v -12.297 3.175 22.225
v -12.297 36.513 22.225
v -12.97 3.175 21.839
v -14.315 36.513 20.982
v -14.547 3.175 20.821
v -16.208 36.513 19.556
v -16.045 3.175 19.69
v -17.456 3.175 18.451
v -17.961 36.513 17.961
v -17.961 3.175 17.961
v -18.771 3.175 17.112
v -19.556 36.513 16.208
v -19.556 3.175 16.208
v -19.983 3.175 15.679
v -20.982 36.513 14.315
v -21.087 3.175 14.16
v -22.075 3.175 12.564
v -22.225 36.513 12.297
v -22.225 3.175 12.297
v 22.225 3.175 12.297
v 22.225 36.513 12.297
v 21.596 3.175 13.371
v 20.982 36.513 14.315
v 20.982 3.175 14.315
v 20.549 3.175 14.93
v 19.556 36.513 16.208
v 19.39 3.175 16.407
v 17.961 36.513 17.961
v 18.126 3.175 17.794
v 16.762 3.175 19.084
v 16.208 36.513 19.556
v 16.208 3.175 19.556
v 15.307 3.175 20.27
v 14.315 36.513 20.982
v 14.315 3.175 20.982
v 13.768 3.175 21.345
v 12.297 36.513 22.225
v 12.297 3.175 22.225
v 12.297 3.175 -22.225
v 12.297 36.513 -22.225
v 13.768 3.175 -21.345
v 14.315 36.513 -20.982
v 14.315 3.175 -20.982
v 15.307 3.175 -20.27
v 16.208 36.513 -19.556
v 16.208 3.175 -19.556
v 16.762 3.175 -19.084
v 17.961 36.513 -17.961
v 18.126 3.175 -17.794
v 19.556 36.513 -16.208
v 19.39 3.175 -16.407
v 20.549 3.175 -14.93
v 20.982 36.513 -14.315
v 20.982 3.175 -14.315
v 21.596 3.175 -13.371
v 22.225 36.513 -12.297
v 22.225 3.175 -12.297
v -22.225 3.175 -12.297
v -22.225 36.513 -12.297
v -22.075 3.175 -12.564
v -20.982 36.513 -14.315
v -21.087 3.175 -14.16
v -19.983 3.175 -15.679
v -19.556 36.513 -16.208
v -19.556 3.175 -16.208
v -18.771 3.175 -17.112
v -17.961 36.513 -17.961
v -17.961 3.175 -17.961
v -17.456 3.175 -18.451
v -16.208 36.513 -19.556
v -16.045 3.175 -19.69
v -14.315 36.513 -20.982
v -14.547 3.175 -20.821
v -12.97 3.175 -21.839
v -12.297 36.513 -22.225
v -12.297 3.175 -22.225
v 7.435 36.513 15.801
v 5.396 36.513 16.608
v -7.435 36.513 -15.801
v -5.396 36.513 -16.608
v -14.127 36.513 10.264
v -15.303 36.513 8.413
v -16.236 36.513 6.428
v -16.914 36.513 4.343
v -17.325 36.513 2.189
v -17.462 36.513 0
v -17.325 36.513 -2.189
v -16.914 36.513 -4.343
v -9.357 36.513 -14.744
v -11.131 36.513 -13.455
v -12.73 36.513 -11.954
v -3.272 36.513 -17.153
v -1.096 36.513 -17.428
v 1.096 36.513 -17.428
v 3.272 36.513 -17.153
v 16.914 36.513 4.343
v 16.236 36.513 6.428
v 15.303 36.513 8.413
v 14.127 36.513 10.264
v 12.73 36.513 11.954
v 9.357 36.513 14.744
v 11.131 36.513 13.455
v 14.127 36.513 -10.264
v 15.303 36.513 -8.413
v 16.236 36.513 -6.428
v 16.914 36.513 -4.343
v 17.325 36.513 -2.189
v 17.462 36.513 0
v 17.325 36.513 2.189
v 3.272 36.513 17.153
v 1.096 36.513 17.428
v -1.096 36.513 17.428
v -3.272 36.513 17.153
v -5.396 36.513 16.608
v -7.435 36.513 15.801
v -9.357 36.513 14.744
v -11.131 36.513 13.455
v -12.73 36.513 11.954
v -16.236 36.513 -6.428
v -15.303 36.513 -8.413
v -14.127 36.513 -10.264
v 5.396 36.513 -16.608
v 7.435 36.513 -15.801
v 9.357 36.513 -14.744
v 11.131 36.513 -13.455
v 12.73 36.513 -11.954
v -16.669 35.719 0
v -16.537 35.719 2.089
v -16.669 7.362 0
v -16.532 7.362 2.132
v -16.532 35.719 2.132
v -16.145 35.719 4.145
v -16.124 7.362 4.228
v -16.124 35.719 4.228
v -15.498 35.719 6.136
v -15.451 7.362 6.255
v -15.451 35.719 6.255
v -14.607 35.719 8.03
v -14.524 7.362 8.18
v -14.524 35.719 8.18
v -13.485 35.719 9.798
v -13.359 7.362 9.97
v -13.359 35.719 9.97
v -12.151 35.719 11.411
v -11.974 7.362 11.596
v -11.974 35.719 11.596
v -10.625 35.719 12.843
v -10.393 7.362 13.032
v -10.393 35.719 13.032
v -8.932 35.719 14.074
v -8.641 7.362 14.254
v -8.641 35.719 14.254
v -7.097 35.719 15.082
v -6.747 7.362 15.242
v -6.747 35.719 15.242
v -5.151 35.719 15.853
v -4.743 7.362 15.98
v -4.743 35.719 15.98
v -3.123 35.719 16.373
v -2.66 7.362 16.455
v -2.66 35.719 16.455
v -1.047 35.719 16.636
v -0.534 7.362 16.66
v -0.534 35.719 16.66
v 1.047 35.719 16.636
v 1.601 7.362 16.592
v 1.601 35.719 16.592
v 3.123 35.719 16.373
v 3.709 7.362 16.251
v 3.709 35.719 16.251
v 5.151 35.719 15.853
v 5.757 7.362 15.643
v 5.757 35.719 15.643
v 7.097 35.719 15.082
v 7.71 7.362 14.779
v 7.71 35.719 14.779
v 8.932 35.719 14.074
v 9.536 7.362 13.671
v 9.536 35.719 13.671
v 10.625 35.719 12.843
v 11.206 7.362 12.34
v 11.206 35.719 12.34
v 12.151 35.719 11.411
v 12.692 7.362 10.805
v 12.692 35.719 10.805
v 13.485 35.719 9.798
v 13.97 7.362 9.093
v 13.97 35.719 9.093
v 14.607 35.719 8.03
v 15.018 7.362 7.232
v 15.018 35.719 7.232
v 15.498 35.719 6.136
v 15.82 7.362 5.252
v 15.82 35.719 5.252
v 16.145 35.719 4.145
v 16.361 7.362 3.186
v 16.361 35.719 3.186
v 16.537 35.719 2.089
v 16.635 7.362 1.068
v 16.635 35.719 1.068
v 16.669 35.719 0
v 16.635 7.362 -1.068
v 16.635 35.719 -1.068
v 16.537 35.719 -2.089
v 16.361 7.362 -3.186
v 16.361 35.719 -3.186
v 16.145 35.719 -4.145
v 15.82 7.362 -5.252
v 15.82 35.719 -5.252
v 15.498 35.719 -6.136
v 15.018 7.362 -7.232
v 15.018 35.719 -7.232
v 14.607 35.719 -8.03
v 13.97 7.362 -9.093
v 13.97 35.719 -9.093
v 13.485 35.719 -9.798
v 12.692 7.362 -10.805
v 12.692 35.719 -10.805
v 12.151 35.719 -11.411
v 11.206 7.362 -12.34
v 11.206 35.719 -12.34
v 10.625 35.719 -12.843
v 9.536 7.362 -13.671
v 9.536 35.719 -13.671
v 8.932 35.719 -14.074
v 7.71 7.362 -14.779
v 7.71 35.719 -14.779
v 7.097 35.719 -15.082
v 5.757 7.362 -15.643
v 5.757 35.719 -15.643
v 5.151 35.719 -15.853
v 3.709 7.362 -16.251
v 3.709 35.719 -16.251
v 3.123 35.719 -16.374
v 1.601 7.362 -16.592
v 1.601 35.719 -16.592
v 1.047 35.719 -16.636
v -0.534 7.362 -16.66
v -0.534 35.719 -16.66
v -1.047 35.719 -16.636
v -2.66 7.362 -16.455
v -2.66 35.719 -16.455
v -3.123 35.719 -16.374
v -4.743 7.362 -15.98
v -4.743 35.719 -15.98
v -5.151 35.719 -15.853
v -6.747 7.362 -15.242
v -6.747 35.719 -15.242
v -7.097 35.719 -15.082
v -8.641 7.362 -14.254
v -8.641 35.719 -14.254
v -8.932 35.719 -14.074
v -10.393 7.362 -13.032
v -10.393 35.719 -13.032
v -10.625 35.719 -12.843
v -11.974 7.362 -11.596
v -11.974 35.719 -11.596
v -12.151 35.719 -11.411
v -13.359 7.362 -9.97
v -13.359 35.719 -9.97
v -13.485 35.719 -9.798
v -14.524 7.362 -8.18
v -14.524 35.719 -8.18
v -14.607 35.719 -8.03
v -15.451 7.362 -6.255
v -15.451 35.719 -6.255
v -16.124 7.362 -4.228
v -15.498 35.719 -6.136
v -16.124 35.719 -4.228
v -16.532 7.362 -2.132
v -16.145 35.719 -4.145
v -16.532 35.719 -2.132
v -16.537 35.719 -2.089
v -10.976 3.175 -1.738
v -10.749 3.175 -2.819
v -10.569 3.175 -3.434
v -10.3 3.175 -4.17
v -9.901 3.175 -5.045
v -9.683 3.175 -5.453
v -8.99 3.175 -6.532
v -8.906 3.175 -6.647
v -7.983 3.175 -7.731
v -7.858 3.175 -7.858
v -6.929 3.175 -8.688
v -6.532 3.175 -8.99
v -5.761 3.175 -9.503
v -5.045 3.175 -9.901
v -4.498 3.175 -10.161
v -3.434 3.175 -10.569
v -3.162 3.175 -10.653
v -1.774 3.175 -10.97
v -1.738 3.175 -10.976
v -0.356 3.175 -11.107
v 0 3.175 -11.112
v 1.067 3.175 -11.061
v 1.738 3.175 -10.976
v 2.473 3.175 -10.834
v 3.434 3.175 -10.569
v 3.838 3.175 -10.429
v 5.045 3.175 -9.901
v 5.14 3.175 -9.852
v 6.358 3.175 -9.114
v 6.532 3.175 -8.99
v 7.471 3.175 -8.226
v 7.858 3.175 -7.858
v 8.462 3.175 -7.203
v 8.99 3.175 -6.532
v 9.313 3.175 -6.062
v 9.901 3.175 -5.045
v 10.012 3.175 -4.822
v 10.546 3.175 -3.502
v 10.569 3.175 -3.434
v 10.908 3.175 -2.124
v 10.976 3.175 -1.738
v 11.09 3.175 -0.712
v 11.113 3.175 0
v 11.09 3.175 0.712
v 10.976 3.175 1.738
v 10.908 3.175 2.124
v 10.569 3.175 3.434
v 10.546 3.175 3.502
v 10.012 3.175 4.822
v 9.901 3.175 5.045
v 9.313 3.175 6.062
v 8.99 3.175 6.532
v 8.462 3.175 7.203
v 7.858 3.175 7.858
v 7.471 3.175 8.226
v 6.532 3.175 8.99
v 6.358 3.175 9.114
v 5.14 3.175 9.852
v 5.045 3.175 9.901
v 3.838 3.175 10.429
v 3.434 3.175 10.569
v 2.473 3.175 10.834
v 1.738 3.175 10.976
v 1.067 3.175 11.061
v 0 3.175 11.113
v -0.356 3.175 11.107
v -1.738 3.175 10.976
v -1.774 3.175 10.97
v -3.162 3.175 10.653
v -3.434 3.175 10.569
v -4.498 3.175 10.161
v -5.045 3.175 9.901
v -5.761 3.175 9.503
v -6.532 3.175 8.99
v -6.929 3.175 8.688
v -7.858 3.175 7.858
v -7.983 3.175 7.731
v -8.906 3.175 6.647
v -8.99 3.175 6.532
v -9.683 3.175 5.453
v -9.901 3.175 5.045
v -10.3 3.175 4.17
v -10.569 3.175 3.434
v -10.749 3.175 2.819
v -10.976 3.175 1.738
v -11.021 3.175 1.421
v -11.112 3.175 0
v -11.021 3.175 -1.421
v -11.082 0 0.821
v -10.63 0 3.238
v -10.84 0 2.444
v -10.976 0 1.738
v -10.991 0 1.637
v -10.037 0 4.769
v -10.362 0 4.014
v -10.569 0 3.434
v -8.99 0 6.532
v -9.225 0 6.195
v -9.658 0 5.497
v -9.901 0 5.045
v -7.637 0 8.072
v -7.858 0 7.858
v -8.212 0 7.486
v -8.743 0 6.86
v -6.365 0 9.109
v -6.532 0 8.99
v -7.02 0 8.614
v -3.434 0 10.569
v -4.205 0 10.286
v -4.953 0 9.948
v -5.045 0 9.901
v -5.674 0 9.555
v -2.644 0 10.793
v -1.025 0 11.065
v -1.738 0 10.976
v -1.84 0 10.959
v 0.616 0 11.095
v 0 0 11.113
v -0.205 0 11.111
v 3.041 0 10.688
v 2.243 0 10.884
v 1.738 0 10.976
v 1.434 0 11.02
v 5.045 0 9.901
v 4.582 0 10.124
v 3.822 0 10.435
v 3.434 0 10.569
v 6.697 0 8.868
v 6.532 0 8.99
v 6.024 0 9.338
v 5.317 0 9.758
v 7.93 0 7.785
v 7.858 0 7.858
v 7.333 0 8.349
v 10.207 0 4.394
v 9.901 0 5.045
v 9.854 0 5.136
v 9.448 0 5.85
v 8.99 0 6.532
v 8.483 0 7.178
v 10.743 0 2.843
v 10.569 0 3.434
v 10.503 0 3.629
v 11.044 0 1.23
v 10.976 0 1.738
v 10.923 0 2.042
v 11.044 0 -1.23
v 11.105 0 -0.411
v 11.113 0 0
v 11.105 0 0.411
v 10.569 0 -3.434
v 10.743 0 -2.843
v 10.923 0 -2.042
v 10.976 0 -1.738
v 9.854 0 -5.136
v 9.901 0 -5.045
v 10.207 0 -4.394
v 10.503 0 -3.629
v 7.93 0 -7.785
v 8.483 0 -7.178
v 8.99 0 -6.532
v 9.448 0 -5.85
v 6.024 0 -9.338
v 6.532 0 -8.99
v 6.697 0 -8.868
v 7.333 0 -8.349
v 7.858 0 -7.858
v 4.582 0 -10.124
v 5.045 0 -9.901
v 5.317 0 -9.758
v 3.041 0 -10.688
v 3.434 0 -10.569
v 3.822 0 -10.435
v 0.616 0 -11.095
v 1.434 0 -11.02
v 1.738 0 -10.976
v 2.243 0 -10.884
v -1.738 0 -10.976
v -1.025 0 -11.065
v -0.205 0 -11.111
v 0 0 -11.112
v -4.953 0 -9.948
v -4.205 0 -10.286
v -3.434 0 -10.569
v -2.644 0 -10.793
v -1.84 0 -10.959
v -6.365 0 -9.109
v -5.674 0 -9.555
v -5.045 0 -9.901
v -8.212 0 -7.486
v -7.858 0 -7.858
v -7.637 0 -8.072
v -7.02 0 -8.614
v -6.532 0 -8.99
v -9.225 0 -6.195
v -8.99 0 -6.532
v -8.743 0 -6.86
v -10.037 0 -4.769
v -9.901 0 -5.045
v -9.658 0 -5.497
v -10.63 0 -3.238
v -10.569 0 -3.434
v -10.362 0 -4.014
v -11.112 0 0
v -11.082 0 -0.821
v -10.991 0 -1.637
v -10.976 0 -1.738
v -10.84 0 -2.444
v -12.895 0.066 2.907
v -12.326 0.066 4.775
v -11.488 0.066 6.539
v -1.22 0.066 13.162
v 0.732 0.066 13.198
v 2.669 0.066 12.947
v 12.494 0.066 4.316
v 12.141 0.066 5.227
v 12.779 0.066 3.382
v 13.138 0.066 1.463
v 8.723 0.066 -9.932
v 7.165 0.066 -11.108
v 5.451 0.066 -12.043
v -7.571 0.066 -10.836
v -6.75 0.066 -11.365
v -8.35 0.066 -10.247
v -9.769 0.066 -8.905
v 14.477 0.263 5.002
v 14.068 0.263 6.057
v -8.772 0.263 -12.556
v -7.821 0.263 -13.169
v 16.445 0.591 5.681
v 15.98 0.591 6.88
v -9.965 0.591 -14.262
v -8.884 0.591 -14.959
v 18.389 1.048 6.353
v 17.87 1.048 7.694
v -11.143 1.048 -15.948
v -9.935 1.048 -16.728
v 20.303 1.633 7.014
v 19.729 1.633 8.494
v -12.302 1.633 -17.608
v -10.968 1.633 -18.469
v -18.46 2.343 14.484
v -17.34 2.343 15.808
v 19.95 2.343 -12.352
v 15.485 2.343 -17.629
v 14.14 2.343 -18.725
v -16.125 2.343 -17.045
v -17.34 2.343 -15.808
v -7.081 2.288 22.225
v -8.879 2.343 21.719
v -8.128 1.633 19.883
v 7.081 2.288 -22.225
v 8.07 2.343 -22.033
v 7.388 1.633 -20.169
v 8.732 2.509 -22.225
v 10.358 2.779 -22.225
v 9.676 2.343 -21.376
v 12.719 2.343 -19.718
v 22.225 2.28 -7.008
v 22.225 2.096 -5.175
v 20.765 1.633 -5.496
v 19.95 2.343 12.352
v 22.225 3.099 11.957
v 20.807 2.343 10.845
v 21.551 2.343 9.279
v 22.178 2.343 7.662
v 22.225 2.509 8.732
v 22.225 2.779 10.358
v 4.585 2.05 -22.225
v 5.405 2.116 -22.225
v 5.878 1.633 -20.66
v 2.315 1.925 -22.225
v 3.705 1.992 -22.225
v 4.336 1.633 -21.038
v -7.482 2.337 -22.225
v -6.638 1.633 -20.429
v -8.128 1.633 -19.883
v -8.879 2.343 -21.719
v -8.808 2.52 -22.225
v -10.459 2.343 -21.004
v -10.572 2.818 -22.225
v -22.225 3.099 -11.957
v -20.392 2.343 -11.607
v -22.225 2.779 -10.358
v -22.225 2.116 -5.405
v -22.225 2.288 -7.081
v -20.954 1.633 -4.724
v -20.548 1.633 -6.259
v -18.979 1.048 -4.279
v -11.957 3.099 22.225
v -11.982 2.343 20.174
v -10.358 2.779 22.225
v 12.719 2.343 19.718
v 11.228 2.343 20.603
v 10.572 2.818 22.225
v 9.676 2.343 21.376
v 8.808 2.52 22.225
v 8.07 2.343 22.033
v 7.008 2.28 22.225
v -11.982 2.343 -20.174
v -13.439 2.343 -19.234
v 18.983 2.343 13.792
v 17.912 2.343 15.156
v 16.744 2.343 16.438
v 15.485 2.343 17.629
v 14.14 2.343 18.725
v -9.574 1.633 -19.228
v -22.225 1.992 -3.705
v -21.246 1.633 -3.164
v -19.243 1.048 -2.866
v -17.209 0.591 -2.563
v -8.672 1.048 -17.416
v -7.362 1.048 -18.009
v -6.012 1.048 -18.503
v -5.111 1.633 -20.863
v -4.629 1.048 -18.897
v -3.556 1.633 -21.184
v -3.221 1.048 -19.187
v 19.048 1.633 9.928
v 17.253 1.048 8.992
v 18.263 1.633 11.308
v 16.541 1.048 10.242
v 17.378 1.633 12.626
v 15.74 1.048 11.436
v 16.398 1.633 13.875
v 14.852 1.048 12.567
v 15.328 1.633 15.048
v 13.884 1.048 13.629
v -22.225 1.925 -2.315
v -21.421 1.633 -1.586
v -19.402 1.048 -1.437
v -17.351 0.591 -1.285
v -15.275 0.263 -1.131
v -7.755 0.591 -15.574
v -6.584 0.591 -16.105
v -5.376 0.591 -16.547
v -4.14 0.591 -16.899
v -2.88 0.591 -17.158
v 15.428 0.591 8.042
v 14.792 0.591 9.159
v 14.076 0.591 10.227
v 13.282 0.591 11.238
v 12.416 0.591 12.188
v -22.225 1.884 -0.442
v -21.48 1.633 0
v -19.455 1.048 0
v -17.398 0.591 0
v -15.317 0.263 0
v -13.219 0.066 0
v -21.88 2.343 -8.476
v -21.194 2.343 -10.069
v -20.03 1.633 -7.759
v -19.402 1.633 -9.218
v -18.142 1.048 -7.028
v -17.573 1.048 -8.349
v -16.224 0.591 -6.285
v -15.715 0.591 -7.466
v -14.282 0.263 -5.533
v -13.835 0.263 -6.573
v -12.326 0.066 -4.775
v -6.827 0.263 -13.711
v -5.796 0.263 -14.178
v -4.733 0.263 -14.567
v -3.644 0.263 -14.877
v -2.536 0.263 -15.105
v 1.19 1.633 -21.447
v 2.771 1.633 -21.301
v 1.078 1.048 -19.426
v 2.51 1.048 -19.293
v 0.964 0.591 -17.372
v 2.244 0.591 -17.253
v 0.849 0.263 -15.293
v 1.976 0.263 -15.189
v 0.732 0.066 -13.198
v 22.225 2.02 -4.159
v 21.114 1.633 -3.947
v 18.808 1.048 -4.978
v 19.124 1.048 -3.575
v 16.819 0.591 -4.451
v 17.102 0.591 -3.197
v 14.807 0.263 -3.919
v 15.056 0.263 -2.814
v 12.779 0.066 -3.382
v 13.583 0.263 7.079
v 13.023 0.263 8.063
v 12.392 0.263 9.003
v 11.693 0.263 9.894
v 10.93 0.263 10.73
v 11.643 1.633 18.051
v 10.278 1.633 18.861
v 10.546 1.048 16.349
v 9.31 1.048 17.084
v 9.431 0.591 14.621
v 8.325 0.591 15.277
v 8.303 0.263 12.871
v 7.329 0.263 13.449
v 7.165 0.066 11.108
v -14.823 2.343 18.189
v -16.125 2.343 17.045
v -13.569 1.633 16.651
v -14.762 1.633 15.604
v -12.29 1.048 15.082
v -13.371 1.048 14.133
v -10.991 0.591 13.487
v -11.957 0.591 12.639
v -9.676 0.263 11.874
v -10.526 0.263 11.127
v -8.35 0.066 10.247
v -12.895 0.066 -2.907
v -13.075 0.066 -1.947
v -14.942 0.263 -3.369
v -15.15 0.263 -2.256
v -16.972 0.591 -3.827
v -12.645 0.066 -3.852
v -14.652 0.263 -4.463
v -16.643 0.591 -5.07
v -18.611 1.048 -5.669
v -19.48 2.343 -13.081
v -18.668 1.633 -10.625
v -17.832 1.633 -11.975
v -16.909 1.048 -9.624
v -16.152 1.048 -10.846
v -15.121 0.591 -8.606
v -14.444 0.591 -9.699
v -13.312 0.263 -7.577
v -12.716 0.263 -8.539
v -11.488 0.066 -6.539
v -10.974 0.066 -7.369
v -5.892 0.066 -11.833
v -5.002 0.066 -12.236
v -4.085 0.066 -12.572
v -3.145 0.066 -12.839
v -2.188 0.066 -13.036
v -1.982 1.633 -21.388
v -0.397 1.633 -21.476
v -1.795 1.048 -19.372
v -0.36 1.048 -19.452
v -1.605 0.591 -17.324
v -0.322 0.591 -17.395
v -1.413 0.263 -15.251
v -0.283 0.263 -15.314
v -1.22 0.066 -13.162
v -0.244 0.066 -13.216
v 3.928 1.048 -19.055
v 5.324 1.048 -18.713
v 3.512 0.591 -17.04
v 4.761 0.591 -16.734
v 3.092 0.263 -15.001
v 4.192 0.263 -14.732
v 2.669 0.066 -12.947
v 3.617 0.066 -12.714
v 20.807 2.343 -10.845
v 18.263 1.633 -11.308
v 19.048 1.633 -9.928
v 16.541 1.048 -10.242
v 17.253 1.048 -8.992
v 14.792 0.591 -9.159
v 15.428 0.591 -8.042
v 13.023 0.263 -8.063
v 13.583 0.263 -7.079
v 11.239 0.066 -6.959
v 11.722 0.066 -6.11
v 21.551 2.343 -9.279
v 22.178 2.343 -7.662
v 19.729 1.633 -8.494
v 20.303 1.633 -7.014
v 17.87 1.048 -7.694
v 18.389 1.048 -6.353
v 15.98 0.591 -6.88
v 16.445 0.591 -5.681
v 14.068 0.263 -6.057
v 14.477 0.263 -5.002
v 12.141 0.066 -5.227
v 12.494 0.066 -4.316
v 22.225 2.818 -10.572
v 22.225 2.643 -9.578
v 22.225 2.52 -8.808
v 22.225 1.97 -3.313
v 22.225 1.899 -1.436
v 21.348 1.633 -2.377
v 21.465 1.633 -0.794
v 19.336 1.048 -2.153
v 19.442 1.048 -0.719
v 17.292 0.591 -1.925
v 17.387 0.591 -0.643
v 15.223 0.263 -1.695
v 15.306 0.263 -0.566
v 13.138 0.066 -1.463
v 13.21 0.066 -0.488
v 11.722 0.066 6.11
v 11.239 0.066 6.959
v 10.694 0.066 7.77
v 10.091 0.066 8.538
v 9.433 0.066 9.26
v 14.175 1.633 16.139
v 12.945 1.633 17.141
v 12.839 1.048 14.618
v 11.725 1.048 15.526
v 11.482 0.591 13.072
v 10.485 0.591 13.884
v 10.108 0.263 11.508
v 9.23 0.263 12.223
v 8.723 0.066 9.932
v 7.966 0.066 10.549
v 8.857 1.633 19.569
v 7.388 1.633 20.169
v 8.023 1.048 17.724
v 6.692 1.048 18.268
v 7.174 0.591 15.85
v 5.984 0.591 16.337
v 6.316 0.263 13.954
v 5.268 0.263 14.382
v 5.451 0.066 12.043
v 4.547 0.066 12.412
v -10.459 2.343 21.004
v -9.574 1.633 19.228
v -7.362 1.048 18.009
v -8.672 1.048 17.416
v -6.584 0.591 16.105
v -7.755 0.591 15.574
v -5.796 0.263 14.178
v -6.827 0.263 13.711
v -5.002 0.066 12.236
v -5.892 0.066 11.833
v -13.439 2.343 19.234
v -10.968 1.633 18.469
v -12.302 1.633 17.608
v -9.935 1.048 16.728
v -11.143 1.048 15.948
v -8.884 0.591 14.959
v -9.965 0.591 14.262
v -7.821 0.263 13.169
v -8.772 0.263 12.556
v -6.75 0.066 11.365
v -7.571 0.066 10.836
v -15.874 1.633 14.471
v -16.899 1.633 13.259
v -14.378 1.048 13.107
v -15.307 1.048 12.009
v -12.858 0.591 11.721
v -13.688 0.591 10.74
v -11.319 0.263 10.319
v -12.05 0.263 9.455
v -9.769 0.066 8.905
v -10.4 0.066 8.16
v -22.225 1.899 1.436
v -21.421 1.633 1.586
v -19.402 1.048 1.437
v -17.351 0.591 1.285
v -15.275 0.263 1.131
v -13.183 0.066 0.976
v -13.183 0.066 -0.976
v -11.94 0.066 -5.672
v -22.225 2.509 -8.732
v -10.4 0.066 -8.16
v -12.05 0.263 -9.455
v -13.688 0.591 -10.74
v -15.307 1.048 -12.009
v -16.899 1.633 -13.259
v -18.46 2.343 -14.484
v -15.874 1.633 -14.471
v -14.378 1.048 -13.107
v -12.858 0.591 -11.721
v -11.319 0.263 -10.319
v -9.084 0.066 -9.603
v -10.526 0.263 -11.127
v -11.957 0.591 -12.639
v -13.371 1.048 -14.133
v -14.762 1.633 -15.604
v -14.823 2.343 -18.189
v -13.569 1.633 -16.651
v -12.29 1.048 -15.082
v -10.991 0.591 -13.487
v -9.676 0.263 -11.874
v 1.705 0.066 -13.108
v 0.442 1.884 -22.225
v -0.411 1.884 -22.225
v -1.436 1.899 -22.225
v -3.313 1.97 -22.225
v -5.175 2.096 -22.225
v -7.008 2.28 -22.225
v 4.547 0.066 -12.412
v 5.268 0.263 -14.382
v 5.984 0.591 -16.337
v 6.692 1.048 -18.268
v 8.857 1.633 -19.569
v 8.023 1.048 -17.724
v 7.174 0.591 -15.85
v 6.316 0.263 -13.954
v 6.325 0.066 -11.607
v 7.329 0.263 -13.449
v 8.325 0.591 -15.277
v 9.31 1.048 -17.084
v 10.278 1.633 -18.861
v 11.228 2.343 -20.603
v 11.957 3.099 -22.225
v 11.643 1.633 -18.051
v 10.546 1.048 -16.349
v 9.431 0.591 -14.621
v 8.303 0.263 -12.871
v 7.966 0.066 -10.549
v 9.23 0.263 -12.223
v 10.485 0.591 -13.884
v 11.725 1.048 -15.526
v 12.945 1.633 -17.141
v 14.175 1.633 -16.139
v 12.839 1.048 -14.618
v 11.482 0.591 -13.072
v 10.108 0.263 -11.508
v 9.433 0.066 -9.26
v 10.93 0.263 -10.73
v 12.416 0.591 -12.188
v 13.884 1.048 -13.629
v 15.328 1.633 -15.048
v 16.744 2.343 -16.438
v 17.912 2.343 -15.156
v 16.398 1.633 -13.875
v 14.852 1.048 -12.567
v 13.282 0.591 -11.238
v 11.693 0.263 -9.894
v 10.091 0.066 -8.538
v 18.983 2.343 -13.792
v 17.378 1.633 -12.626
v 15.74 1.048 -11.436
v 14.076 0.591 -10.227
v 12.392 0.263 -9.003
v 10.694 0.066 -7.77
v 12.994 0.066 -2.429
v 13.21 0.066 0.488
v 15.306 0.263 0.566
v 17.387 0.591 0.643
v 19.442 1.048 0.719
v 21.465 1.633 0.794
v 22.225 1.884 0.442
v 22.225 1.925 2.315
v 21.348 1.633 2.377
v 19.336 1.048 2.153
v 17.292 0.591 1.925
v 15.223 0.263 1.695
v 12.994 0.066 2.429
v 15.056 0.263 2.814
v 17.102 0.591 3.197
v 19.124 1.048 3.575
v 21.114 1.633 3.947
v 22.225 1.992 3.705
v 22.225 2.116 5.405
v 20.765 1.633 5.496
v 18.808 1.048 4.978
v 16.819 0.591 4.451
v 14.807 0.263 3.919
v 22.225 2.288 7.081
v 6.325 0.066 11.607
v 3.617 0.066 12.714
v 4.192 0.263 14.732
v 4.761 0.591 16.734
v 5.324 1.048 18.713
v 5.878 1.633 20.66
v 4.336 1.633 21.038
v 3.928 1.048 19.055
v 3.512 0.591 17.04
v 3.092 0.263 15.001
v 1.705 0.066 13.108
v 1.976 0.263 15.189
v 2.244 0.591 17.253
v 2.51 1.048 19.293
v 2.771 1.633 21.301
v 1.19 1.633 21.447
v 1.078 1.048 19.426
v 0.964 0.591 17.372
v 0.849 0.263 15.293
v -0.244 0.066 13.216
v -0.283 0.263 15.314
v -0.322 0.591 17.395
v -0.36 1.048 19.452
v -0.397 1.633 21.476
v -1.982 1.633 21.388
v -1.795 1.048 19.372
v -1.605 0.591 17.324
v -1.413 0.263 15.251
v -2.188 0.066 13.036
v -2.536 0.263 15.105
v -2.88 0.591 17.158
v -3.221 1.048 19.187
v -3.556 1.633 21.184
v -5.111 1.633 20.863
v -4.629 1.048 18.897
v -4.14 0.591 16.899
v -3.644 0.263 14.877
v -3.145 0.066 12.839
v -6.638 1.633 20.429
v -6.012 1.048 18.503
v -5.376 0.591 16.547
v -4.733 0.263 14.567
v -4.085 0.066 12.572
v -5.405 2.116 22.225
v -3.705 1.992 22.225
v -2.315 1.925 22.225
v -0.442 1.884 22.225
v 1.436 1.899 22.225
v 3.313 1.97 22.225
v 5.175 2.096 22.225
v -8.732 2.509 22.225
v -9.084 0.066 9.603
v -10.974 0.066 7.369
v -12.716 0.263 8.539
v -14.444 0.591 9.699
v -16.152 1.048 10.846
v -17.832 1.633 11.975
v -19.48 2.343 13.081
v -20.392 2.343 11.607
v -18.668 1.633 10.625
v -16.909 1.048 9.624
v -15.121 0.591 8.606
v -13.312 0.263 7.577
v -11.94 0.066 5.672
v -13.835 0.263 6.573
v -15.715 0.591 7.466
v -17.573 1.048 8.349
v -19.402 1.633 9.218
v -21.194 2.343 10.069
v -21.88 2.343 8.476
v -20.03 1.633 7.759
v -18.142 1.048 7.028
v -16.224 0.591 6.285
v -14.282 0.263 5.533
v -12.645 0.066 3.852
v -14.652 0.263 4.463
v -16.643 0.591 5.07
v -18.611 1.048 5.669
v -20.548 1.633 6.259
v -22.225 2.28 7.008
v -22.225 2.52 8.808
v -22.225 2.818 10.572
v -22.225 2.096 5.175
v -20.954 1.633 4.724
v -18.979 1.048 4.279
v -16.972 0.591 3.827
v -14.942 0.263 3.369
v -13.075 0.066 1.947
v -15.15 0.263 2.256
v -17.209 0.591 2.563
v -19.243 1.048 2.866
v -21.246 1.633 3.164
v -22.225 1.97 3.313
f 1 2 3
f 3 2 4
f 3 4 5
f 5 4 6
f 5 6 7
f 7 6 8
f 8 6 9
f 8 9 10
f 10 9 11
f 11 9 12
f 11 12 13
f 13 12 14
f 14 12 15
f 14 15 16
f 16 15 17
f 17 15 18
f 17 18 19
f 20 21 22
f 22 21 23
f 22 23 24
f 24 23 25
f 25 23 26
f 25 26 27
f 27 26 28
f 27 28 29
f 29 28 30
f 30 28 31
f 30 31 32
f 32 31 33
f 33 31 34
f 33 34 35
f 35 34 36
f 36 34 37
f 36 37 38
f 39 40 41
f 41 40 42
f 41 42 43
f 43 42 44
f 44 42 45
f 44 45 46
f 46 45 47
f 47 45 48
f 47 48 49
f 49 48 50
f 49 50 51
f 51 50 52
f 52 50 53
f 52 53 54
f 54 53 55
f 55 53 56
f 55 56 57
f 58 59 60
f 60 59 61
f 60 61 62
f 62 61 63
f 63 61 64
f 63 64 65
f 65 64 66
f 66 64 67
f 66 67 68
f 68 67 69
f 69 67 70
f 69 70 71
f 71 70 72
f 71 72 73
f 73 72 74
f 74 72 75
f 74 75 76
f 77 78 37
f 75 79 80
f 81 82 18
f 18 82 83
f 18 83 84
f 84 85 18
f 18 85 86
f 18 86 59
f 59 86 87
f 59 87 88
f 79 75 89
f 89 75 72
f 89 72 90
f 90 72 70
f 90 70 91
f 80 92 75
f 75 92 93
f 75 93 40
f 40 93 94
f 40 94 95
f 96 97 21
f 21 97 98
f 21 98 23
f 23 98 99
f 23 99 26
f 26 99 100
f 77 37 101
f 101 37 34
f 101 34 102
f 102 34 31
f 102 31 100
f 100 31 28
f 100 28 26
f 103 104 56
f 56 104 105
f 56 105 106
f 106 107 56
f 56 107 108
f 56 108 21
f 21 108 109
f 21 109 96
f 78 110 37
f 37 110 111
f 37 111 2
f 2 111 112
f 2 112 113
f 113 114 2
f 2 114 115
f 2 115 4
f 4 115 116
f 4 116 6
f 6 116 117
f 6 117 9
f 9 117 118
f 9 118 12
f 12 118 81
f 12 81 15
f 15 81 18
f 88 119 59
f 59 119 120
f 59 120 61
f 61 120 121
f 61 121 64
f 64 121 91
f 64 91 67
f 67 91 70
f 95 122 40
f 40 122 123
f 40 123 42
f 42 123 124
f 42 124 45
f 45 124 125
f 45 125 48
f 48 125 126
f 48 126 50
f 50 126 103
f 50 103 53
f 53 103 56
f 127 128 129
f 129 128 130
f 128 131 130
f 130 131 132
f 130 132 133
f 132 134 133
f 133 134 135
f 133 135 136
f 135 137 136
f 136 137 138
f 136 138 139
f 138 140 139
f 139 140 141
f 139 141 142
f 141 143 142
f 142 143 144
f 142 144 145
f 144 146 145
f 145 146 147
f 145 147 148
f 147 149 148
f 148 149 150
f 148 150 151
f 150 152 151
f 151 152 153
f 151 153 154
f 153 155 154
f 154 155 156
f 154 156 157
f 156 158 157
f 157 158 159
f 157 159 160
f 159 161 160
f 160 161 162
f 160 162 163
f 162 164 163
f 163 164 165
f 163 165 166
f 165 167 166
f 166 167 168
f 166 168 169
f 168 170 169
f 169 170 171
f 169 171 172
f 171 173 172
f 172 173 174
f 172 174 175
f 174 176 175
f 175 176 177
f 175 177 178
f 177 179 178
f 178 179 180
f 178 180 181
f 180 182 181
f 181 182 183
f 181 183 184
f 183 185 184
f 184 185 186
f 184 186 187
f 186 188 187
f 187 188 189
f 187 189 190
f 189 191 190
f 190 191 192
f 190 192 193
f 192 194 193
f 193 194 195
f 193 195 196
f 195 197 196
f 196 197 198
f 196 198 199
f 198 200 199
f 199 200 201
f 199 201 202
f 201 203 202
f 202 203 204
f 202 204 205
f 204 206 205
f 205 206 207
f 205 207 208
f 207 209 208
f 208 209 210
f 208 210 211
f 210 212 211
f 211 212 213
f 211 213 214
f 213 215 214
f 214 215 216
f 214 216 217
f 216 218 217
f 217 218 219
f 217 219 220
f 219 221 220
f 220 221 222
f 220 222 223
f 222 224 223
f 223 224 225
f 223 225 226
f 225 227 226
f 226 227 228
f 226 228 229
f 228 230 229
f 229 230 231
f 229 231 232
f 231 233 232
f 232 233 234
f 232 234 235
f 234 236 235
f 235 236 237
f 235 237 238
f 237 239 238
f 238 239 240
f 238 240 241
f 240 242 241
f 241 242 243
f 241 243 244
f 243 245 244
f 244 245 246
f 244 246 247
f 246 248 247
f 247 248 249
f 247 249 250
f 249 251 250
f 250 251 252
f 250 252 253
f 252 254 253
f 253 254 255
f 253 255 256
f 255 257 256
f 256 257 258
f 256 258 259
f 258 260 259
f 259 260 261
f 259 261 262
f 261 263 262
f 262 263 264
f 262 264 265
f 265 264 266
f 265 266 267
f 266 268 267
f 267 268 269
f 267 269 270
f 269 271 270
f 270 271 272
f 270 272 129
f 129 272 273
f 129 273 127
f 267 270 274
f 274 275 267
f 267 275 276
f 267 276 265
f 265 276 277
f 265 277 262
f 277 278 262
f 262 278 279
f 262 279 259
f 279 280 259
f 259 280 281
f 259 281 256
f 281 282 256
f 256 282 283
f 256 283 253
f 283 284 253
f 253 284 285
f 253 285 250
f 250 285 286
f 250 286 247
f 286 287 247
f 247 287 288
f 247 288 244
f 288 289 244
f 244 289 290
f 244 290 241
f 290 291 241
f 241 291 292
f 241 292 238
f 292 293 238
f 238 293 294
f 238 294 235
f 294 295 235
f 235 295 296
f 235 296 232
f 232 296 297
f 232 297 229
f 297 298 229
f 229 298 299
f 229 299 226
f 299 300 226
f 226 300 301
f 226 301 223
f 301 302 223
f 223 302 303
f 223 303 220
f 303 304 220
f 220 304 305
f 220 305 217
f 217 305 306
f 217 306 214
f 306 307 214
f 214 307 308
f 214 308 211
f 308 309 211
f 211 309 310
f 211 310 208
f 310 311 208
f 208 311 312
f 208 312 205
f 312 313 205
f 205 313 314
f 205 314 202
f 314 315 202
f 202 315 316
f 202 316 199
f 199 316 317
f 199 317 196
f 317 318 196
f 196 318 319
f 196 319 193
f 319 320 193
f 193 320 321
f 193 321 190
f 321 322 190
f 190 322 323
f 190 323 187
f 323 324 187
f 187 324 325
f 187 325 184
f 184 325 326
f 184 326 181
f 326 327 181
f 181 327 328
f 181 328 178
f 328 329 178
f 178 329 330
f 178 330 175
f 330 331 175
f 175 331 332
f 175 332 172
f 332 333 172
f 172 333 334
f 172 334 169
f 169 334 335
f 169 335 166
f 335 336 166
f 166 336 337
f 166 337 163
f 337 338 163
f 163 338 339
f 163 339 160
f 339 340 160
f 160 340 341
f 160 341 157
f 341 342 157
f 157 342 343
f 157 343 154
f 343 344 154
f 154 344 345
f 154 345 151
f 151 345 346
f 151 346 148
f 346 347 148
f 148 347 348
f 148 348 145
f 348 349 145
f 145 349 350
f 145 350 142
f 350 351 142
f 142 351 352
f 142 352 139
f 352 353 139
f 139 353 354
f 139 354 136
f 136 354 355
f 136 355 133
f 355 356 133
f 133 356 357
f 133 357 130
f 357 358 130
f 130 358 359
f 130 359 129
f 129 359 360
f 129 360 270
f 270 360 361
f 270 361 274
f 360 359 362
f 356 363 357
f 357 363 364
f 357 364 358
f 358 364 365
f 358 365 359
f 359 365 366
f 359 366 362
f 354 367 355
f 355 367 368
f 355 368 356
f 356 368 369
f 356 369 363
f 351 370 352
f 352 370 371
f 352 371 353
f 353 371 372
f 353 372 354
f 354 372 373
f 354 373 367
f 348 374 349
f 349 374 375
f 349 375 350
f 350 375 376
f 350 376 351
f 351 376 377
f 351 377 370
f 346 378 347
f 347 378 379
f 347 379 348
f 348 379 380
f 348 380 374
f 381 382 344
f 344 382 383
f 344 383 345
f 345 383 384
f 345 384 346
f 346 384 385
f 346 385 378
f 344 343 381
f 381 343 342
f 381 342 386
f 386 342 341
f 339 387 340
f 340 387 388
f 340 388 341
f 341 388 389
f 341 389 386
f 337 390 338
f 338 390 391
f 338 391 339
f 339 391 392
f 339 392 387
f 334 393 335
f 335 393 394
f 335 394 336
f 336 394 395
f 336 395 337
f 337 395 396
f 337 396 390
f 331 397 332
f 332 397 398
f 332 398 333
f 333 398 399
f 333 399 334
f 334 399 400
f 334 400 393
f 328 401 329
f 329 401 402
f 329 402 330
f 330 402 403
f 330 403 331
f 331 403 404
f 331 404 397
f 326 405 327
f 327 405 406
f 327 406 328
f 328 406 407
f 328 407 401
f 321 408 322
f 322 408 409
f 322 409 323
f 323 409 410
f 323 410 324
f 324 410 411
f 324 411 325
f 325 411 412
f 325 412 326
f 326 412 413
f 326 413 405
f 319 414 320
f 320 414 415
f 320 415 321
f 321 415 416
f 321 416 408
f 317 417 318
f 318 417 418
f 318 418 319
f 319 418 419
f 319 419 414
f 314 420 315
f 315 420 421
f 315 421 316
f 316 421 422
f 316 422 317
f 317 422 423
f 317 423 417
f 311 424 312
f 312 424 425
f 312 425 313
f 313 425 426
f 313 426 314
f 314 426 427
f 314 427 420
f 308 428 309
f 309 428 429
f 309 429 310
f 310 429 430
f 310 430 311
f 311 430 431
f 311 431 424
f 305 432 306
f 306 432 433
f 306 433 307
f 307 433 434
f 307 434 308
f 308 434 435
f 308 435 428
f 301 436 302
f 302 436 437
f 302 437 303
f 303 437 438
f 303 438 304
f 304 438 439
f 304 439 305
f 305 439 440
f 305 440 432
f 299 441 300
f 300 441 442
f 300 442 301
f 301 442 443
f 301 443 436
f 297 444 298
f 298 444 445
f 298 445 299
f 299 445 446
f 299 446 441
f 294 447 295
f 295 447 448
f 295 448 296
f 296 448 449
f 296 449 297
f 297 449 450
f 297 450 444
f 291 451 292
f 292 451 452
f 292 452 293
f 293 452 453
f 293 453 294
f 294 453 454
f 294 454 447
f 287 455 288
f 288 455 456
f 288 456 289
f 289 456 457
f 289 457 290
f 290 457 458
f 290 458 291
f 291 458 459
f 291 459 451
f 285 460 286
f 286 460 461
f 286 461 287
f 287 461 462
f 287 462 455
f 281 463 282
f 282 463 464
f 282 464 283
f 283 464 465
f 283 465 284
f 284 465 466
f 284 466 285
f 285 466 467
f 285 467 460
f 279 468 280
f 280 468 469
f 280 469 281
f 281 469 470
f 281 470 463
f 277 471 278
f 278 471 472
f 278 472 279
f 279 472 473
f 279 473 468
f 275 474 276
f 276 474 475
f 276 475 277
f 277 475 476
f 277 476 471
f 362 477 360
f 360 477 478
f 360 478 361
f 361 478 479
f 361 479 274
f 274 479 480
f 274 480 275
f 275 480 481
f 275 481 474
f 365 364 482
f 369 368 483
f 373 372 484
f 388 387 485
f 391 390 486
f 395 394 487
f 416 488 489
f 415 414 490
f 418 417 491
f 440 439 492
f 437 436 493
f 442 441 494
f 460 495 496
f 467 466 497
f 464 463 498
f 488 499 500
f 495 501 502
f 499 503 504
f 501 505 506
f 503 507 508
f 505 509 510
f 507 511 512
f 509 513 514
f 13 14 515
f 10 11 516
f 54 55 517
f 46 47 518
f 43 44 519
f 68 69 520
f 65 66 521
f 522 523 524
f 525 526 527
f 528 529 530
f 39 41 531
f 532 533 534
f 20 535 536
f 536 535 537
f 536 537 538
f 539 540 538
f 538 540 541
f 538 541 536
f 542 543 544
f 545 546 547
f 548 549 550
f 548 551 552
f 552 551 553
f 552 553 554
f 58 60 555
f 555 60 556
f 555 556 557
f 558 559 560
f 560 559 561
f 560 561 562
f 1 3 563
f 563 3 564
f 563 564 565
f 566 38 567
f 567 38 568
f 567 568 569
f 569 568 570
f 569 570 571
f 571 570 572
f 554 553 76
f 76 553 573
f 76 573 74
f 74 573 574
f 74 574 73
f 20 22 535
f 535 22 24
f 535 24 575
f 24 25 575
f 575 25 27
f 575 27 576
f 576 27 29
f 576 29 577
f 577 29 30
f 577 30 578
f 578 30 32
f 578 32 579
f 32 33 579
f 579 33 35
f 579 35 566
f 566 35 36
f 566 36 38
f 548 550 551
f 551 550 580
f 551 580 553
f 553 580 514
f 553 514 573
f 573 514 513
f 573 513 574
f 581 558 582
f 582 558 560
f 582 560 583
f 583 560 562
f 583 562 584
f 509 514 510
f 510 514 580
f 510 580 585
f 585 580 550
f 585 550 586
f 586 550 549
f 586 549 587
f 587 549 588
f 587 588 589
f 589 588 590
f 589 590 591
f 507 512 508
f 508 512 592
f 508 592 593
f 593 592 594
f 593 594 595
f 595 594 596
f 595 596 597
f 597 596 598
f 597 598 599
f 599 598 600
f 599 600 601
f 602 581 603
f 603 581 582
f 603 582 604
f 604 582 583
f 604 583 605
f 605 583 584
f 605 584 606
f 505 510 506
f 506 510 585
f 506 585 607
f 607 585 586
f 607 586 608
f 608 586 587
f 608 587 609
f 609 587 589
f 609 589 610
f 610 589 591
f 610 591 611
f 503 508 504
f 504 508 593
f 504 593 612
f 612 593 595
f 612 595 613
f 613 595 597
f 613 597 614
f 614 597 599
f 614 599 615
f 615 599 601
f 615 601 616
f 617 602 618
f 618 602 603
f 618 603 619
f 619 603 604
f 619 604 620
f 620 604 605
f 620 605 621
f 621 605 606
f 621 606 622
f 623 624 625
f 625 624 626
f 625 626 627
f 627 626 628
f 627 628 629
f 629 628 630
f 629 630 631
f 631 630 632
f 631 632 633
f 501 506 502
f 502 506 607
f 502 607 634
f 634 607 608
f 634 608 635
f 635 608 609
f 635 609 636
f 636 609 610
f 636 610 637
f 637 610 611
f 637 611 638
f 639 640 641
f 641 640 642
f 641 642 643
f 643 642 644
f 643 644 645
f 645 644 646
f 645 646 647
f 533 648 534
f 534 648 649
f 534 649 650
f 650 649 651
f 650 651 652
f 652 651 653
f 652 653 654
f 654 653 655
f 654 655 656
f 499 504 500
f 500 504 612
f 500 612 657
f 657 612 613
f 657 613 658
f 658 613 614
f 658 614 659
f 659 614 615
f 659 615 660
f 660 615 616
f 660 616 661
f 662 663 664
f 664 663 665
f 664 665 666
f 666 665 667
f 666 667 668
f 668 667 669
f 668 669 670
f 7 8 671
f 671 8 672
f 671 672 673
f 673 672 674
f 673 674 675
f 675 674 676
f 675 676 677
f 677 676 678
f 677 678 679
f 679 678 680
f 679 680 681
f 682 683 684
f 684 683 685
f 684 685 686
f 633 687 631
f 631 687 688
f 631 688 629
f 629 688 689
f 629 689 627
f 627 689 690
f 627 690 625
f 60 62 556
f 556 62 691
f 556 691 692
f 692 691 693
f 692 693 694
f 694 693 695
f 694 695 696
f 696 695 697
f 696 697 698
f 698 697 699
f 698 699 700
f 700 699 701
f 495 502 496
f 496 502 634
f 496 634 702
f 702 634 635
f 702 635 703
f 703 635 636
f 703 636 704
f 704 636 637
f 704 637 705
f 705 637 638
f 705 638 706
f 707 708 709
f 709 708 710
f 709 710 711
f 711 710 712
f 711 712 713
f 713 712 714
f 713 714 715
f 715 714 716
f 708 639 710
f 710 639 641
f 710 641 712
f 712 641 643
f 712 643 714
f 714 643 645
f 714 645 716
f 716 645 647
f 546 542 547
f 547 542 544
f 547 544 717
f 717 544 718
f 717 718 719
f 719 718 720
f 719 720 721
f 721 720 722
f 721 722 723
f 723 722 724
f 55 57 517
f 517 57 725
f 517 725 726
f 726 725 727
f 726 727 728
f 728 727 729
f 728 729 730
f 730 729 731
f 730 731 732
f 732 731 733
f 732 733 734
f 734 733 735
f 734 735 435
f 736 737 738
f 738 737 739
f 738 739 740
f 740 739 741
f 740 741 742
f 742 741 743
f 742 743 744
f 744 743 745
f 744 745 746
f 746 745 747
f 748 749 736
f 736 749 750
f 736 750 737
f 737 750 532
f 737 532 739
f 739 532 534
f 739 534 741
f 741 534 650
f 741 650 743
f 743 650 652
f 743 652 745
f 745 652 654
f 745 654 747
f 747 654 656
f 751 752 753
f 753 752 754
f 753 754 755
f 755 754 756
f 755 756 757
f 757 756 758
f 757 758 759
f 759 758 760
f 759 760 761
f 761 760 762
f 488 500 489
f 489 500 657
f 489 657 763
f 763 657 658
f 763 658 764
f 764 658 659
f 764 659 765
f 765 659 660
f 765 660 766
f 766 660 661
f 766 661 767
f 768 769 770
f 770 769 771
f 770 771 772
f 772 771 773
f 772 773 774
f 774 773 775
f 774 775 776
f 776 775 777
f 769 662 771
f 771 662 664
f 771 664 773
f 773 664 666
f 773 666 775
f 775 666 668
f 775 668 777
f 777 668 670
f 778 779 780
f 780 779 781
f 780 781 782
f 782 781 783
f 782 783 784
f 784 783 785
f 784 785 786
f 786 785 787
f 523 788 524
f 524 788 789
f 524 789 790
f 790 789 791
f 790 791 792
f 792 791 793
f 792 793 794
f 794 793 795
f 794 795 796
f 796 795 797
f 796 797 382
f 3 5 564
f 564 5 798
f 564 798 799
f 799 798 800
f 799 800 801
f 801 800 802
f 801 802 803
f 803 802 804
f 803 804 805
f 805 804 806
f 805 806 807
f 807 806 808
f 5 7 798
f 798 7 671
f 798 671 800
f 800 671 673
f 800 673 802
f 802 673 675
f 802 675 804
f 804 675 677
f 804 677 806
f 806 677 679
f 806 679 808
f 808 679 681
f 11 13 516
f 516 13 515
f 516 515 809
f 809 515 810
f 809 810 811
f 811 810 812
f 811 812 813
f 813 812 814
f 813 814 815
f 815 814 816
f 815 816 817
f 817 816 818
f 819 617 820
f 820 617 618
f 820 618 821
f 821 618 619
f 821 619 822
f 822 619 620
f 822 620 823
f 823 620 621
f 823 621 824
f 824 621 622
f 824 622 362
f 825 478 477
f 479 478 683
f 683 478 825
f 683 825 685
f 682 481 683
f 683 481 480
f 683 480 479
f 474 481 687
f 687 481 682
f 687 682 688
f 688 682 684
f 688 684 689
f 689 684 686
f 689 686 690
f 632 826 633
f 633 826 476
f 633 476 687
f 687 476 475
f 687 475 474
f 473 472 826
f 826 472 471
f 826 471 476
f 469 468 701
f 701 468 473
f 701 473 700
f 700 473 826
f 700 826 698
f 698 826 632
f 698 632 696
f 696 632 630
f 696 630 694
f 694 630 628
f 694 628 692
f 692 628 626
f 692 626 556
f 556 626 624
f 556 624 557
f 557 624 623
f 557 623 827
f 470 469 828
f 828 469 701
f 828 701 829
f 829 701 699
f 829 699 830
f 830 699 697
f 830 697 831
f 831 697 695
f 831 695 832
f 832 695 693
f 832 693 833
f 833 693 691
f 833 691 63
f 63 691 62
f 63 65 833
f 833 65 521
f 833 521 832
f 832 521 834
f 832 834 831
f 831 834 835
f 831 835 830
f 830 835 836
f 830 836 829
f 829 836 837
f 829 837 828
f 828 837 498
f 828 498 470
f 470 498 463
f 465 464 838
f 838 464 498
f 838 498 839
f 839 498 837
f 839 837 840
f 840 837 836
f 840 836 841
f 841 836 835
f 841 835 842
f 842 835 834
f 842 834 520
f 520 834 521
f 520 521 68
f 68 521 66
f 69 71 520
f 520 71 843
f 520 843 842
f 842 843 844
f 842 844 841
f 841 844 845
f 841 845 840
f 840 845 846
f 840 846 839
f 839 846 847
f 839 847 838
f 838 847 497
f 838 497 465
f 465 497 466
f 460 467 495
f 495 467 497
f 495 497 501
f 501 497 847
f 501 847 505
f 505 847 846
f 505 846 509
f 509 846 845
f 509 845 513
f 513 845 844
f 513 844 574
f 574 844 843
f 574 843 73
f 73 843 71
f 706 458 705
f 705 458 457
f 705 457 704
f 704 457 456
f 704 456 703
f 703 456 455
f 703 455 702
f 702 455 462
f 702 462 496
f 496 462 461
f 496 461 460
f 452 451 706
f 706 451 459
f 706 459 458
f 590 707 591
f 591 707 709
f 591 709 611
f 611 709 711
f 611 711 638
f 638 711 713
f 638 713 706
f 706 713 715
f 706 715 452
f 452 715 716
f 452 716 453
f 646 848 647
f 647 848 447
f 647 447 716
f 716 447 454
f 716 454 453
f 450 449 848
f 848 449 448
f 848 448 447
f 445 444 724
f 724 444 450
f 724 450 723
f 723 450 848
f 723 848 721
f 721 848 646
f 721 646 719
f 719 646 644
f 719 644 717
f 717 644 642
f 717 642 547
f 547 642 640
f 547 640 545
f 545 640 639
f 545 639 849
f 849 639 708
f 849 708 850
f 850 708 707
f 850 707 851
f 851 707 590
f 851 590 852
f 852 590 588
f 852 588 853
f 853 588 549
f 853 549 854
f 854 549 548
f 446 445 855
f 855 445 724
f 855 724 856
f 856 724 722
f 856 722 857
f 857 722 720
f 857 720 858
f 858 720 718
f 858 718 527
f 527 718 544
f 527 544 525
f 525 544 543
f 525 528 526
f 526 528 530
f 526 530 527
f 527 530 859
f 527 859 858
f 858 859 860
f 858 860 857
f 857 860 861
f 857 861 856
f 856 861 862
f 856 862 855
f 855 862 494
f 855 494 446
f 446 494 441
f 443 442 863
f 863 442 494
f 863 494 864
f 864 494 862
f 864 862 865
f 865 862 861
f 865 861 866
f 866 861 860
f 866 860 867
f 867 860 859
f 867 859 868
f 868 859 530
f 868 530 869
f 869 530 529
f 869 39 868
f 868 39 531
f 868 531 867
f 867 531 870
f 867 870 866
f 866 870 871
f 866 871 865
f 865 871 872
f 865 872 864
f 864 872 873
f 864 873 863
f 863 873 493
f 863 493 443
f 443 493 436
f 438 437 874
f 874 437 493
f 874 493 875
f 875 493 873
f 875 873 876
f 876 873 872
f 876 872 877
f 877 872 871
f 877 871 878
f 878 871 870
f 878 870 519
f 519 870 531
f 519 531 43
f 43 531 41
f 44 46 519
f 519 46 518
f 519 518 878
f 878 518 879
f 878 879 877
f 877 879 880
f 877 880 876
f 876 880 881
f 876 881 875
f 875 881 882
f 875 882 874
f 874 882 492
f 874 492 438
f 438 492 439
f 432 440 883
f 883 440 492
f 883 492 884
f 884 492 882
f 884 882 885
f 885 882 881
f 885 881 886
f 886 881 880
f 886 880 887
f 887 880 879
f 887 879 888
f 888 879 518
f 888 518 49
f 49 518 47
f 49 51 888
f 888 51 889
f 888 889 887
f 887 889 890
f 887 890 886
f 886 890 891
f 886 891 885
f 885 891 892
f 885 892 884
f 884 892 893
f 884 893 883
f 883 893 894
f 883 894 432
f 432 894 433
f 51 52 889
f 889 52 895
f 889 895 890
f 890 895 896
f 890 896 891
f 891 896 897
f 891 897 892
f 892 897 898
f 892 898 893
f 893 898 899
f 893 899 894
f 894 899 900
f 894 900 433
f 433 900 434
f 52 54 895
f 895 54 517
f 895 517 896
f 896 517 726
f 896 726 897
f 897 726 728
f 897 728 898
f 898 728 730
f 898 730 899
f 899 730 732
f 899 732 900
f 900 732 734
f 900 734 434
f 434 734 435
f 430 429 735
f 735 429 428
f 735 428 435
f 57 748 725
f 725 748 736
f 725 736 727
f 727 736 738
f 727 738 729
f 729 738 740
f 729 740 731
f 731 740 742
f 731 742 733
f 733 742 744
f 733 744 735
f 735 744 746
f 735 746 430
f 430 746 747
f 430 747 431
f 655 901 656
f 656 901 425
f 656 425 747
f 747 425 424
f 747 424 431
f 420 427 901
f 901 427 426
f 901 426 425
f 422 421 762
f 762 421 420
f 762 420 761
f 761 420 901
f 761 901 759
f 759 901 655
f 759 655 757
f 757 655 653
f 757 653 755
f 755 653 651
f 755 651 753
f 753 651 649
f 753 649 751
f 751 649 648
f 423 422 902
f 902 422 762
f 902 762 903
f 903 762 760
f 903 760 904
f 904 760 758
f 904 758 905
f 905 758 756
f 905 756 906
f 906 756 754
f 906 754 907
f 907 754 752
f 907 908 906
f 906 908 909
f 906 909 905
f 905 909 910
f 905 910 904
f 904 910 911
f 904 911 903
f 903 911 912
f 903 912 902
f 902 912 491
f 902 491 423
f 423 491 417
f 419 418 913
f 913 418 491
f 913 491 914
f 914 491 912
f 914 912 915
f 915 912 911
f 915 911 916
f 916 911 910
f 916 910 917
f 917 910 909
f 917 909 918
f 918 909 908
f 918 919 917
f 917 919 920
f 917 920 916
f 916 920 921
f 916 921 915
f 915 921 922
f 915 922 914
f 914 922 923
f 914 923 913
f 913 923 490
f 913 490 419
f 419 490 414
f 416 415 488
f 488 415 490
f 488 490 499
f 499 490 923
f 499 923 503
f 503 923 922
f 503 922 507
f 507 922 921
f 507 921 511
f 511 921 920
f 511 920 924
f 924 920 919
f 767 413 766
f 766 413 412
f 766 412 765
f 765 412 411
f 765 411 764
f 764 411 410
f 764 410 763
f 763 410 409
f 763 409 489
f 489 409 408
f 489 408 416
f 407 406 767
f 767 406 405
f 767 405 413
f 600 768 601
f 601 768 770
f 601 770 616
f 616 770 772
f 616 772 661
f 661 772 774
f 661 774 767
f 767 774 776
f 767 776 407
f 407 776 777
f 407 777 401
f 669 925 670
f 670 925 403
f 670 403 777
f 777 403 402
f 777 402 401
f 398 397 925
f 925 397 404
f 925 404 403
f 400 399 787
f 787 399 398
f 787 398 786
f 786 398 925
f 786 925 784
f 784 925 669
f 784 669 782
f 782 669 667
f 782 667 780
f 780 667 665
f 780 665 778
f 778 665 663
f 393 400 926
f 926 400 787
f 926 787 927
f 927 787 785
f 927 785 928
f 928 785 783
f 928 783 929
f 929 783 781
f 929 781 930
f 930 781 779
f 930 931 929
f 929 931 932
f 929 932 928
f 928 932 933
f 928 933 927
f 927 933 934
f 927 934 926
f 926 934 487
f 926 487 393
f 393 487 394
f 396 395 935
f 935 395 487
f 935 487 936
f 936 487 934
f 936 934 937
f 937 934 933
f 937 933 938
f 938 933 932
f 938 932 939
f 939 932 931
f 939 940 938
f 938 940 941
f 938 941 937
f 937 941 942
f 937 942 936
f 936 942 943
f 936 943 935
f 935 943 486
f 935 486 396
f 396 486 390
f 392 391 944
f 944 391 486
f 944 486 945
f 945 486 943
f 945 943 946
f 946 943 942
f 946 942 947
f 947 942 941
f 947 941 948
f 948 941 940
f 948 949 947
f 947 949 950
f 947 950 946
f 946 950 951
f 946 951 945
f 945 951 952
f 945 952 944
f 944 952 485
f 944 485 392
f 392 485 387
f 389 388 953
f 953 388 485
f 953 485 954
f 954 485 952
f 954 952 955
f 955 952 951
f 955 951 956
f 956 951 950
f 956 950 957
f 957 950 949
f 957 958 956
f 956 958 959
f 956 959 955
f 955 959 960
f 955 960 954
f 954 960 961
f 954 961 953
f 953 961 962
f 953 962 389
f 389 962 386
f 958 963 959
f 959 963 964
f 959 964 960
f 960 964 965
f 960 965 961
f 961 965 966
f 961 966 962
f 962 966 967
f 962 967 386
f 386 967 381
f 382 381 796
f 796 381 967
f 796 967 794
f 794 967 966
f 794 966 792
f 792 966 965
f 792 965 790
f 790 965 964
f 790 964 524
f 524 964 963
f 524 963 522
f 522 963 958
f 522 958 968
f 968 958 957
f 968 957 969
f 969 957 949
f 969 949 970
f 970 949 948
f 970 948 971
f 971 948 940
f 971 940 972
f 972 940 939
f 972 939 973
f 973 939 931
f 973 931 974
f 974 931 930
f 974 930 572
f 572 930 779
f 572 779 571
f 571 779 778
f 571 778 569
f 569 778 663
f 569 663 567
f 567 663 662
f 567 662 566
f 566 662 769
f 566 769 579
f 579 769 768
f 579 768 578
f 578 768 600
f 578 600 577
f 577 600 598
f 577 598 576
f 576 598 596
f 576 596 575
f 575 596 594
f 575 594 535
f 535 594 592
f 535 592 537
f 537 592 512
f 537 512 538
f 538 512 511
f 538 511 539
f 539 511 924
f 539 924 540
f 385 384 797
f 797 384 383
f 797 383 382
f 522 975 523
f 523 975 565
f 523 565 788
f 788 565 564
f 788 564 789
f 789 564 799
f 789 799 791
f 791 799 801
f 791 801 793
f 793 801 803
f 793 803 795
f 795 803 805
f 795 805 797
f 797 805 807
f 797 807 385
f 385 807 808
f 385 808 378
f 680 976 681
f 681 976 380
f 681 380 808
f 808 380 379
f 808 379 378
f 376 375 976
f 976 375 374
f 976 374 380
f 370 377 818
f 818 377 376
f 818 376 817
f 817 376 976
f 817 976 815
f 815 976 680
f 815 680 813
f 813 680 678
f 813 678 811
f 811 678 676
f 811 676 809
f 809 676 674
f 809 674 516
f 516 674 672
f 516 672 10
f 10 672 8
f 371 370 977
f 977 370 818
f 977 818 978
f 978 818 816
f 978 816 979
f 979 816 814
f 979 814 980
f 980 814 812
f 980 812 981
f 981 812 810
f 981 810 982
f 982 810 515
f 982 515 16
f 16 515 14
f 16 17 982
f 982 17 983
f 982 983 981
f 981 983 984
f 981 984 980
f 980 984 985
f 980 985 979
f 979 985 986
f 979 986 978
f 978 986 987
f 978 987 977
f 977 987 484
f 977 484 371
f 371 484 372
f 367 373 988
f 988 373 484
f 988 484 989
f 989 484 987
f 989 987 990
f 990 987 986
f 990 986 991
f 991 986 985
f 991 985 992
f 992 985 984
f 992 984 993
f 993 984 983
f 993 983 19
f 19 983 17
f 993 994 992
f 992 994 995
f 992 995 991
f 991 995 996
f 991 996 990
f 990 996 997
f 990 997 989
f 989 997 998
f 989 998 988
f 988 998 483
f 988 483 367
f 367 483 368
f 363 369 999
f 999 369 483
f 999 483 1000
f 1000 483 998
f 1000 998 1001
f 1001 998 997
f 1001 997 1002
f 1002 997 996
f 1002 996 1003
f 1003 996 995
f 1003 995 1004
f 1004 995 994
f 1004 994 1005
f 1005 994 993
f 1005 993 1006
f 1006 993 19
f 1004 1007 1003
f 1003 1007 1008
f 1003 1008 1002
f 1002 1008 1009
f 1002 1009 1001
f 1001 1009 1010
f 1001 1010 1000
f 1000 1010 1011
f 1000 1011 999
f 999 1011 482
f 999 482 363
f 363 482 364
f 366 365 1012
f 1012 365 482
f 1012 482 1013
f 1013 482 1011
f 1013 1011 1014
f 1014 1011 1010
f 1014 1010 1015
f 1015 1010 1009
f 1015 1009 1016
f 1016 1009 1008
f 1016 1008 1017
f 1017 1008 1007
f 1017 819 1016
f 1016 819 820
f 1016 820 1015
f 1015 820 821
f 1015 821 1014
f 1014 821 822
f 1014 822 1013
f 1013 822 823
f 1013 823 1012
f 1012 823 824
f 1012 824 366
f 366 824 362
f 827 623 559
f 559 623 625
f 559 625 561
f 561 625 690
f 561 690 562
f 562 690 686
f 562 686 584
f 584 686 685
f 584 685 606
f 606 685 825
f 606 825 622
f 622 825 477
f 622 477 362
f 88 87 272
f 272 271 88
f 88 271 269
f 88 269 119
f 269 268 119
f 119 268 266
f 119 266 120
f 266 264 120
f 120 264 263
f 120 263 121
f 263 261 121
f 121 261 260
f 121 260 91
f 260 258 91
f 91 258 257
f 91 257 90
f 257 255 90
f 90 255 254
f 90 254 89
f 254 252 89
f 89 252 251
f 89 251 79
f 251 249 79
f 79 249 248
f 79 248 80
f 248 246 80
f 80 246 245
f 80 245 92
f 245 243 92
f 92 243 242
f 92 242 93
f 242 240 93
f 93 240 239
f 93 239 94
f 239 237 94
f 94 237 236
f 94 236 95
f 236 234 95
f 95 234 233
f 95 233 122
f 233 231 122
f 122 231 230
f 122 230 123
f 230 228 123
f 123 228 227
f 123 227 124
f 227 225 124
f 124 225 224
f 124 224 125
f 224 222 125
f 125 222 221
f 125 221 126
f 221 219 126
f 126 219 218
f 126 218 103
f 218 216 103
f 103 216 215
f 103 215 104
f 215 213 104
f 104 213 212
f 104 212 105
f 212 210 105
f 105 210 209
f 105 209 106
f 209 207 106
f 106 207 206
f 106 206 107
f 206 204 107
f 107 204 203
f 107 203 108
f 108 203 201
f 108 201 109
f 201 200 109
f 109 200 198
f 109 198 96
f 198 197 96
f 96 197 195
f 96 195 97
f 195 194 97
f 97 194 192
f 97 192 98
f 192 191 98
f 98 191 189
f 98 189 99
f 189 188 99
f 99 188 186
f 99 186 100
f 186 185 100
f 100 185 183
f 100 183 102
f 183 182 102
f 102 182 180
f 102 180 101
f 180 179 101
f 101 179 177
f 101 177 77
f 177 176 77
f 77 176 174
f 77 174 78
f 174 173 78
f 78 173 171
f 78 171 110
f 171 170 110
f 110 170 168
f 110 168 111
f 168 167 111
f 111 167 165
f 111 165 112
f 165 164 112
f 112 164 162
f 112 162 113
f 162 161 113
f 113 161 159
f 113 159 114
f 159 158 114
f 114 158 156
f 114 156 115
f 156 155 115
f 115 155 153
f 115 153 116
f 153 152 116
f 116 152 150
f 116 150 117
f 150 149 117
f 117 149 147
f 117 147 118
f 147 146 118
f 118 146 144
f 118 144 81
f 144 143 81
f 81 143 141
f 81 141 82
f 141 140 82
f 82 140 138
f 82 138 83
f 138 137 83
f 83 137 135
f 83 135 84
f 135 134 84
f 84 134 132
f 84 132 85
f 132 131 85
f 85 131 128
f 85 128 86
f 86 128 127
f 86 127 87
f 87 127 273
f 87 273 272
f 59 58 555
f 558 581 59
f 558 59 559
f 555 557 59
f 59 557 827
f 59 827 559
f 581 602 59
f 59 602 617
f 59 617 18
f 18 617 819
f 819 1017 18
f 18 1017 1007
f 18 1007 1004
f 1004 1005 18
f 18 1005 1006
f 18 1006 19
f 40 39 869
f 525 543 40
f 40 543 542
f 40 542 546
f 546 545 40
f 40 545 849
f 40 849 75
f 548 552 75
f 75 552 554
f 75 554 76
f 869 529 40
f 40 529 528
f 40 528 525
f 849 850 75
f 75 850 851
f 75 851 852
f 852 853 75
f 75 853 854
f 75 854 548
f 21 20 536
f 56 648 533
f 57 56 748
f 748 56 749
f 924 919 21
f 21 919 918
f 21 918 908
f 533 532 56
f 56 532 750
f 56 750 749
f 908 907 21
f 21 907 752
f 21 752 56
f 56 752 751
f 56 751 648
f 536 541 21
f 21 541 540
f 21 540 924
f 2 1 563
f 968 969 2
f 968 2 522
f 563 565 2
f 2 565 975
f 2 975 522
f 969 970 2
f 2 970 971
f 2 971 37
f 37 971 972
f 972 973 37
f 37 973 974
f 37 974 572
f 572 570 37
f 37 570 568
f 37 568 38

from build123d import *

# Parameters (mm, degrees)
CHAMFER1_SIZE      = 0.79375
CUT_EXTRUDE1_DEPTH = 37.5125001
CIRPATTERN1_COUNT  = 4


with BuildPart() as part:
    # Sketch1 → Revolve1 (revolve)
    with BuildSketch(Plane.XY):
        with BuildLine():
            Line((25.4, 36.5125), (16.66875, 36.5125))
            Line((16.66875, 36.5125), (16.66875, 7.361934691))
            Line((16.66875, 7.361934691), (11.1125, 3.175))
            Line((11.1125, 3.175), (11.1125, 0))
            ThreePointArc((11.1125, 0), (18.430513413, 0.803314642), (25.4, 3.175))
            Line((25.4, 3.175), (25.4, 36.5125))
        make_face()
    revolve(axis=Axis((0, 53.46364703, 0), (0, -1, 0)))

    # Chamfer1
    chamfer1_edges = [part.edges().sort_by_distance(p)[0] for p in [
        (-16.66875, 36.5125, 0),
    ]]
    chamfer(chamfer1_edges, length=CHAMFER1_SIZE)

    # Sketch8 → Cut-Extrude1 (cut, through all)
    with BuildSketch(Plane(origin=(0, 36.5125, 0), x_dir=(1, 0, 0), z_dir=(0, 1, 0))):
        with BuildLine():
            Line((-22.225, 12.296722124), (-22.225, -12.296722124))
            ThreePointArc((-22.225, -12.296722124), (-25.4, 0), (-22.225, 12.296722124))
        make_face()
    cut_extrude1 = extrude(amount=-CUT_EXTRUDE1_DEPTH, mode=Mode.SUBTRACT)

    # CirPattern1: Cut-Extrude1 ×4 about axis
    cirpattern1_axis = Axis((0, 0, 0), (0, 1, 0))
    for i in range(1, CIRPATTERN1_COUNT):
        add(cut_extrude1.rotate(cirpattern1_axis, i * 360 / CIRPATTERN1_COUNT), mode=Mode.SUBTRACT)


solid = part.part
